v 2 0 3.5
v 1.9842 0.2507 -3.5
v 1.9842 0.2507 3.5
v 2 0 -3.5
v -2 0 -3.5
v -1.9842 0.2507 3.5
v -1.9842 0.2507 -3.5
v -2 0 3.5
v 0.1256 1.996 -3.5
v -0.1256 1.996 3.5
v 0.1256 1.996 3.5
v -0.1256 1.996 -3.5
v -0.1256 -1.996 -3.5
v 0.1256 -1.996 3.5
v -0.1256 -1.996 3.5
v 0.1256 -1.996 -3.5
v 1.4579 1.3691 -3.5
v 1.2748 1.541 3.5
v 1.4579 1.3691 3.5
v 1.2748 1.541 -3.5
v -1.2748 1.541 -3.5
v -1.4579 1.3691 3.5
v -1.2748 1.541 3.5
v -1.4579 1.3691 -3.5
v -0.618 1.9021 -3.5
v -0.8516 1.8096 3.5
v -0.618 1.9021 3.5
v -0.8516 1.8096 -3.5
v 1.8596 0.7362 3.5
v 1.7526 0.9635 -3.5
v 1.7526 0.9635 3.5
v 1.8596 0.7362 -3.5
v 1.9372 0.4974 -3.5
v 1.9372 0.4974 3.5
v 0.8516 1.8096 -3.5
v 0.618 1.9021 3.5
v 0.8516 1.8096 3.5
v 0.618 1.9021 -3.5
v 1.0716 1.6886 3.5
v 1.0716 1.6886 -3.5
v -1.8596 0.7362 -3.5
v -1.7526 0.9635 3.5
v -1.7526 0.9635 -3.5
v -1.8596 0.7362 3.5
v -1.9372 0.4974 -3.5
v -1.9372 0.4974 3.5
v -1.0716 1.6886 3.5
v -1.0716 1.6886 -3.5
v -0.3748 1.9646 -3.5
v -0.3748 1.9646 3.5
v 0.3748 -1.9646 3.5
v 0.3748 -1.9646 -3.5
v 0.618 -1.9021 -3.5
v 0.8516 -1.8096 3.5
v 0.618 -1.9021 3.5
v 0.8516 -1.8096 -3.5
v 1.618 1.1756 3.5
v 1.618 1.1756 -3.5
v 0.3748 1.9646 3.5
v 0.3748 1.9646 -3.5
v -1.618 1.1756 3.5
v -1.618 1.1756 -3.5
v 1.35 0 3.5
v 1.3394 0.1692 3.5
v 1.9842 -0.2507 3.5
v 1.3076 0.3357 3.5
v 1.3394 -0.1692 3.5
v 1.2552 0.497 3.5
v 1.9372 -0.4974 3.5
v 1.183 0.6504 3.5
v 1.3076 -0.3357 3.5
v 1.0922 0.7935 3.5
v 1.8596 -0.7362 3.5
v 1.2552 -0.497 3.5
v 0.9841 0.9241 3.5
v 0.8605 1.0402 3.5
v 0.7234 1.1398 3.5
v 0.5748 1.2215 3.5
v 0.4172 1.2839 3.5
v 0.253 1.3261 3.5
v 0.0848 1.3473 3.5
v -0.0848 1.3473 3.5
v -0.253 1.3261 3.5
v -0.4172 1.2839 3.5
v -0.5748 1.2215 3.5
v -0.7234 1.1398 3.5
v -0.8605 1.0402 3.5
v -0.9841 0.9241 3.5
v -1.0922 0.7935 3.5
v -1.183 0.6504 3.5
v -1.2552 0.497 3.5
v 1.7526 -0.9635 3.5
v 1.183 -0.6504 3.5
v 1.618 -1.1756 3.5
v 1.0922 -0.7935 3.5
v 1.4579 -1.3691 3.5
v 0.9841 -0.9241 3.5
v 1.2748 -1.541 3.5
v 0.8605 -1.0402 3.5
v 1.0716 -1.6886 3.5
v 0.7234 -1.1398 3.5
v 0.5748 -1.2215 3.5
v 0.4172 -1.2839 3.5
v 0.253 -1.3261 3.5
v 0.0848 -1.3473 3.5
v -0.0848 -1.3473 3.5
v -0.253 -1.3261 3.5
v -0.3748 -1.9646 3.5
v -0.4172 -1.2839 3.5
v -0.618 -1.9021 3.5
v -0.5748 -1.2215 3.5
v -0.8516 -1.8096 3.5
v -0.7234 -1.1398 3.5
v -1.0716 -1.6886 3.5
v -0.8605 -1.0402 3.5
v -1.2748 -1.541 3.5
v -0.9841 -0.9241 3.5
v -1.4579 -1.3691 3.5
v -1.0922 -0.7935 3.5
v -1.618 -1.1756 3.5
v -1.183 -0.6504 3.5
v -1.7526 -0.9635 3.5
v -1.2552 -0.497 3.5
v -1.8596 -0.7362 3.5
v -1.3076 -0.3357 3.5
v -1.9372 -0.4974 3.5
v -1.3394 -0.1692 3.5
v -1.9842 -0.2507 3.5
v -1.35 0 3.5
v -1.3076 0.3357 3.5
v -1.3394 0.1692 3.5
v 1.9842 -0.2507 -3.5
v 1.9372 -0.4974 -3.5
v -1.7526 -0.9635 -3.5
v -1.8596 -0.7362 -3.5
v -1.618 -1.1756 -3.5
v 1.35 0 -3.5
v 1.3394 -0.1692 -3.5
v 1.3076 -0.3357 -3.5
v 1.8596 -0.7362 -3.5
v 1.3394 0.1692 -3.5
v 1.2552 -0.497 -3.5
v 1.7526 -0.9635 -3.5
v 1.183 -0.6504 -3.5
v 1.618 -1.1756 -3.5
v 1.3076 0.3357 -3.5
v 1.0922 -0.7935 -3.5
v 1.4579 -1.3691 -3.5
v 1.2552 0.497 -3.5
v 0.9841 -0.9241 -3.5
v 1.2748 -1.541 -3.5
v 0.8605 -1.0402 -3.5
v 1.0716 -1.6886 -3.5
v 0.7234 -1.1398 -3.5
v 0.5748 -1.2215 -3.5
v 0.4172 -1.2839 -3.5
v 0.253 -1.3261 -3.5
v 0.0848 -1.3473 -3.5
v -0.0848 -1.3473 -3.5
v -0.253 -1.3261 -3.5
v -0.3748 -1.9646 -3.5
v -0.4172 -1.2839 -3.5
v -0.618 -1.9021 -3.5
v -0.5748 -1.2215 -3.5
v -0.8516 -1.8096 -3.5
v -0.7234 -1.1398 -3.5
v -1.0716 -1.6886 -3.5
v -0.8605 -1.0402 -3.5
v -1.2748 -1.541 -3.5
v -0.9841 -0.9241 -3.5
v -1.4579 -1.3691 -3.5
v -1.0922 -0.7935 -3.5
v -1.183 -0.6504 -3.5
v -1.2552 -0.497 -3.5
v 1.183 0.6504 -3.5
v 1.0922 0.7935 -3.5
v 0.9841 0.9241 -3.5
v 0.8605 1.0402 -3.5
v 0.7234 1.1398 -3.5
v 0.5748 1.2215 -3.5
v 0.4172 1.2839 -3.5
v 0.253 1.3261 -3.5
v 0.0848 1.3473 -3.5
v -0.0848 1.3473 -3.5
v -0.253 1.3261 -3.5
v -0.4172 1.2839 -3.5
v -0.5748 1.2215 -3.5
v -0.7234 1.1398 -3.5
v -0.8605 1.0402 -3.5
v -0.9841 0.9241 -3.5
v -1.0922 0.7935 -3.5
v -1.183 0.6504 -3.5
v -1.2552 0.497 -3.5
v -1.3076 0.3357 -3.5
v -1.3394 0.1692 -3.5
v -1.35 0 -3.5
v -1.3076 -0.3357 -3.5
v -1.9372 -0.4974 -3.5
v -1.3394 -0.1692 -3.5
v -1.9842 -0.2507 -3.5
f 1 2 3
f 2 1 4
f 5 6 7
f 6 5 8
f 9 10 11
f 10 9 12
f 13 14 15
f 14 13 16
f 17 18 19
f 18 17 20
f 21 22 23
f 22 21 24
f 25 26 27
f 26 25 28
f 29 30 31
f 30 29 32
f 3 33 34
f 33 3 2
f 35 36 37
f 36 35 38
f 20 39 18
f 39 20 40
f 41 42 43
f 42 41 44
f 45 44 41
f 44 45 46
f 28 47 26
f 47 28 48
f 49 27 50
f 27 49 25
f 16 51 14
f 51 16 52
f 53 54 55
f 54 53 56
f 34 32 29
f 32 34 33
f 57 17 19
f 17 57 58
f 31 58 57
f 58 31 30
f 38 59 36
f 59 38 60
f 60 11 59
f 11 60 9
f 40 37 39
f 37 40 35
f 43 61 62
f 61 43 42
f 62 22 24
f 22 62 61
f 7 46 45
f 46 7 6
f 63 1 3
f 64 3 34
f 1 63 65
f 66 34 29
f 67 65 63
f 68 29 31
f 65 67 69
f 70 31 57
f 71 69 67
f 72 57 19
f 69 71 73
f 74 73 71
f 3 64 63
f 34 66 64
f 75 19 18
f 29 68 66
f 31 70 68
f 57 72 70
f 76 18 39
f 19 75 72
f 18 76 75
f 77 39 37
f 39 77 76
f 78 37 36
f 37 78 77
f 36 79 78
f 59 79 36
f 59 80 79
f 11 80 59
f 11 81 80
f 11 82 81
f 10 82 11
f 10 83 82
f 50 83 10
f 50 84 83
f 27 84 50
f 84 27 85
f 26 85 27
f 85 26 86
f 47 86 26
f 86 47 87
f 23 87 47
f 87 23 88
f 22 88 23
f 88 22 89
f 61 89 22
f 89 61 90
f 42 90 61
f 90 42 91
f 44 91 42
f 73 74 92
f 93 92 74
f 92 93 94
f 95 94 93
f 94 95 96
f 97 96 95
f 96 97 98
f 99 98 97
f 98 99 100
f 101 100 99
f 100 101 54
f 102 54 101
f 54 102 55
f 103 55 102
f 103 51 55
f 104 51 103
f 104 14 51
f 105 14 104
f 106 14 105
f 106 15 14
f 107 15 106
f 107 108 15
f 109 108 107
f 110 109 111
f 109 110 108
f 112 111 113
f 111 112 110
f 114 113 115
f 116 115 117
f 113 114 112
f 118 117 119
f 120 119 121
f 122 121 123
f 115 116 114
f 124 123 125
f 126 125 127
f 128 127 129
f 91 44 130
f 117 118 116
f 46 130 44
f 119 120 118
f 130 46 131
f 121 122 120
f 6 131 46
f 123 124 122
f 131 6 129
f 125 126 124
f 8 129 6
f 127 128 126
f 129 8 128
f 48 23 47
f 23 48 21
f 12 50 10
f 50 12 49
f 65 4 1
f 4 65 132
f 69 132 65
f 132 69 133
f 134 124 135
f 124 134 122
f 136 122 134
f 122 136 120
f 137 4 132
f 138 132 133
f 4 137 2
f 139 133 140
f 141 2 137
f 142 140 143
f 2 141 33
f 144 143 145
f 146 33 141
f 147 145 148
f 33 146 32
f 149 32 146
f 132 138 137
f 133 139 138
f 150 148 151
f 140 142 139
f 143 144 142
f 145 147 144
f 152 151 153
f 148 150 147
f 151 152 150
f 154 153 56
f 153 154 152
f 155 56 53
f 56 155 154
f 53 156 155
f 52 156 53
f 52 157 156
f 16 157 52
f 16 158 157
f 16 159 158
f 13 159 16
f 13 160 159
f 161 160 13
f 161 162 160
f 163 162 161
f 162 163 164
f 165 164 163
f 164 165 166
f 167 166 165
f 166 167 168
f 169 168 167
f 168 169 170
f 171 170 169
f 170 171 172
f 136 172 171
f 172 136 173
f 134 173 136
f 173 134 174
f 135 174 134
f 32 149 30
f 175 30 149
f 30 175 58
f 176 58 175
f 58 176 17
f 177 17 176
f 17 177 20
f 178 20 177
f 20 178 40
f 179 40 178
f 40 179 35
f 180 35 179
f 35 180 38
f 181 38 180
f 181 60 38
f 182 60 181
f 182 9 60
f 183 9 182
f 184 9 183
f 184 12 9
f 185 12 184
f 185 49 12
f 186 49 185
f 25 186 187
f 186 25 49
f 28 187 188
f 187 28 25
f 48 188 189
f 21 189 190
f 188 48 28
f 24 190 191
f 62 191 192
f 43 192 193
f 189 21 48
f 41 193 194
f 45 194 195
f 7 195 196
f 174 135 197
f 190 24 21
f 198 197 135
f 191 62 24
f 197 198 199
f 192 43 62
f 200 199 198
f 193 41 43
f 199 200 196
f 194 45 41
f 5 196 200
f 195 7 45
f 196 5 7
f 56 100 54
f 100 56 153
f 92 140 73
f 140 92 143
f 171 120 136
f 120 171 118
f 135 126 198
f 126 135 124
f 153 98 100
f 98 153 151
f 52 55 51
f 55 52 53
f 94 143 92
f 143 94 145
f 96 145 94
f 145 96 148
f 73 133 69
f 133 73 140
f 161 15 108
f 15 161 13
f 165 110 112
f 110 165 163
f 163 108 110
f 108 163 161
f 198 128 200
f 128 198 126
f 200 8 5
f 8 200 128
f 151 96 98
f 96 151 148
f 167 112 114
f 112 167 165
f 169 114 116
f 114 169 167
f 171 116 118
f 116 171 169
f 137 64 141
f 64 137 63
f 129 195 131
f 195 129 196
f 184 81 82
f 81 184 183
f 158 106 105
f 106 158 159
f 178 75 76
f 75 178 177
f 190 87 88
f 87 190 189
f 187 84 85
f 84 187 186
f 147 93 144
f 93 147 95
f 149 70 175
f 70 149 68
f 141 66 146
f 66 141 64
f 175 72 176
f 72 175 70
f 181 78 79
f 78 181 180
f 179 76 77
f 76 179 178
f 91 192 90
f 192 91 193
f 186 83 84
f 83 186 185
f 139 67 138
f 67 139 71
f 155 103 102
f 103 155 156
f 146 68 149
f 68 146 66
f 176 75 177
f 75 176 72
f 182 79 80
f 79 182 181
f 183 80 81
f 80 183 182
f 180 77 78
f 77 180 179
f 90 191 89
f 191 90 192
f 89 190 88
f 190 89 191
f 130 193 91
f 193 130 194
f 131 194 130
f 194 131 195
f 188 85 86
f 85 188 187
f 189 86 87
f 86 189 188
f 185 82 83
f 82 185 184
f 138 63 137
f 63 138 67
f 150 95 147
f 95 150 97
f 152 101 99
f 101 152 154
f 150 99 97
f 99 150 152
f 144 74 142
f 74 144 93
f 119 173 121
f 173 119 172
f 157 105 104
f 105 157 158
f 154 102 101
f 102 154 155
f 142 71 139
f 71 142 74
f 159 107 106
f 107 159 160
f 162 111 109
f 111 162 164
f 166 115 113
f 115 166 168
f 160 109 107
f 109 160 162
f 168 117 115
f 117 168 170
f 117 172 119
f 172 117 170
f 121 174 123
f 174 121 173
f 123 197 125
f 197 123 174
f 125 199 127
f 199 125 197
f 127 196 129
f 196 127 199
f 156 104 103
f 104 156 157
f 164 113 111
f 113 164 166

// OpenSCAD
$fn = 50;


difference() {
	union() {
		translate(v = [0, 0, -3.5000000000]) {
			cylinder(h = 7, r = 2.0000000000);
		}
	}
	union() {
		translate(v = [0, 0, -100.0000000000]) {
			cylinder(h = 200, r = 1.3500000000);
		}
	}
}
